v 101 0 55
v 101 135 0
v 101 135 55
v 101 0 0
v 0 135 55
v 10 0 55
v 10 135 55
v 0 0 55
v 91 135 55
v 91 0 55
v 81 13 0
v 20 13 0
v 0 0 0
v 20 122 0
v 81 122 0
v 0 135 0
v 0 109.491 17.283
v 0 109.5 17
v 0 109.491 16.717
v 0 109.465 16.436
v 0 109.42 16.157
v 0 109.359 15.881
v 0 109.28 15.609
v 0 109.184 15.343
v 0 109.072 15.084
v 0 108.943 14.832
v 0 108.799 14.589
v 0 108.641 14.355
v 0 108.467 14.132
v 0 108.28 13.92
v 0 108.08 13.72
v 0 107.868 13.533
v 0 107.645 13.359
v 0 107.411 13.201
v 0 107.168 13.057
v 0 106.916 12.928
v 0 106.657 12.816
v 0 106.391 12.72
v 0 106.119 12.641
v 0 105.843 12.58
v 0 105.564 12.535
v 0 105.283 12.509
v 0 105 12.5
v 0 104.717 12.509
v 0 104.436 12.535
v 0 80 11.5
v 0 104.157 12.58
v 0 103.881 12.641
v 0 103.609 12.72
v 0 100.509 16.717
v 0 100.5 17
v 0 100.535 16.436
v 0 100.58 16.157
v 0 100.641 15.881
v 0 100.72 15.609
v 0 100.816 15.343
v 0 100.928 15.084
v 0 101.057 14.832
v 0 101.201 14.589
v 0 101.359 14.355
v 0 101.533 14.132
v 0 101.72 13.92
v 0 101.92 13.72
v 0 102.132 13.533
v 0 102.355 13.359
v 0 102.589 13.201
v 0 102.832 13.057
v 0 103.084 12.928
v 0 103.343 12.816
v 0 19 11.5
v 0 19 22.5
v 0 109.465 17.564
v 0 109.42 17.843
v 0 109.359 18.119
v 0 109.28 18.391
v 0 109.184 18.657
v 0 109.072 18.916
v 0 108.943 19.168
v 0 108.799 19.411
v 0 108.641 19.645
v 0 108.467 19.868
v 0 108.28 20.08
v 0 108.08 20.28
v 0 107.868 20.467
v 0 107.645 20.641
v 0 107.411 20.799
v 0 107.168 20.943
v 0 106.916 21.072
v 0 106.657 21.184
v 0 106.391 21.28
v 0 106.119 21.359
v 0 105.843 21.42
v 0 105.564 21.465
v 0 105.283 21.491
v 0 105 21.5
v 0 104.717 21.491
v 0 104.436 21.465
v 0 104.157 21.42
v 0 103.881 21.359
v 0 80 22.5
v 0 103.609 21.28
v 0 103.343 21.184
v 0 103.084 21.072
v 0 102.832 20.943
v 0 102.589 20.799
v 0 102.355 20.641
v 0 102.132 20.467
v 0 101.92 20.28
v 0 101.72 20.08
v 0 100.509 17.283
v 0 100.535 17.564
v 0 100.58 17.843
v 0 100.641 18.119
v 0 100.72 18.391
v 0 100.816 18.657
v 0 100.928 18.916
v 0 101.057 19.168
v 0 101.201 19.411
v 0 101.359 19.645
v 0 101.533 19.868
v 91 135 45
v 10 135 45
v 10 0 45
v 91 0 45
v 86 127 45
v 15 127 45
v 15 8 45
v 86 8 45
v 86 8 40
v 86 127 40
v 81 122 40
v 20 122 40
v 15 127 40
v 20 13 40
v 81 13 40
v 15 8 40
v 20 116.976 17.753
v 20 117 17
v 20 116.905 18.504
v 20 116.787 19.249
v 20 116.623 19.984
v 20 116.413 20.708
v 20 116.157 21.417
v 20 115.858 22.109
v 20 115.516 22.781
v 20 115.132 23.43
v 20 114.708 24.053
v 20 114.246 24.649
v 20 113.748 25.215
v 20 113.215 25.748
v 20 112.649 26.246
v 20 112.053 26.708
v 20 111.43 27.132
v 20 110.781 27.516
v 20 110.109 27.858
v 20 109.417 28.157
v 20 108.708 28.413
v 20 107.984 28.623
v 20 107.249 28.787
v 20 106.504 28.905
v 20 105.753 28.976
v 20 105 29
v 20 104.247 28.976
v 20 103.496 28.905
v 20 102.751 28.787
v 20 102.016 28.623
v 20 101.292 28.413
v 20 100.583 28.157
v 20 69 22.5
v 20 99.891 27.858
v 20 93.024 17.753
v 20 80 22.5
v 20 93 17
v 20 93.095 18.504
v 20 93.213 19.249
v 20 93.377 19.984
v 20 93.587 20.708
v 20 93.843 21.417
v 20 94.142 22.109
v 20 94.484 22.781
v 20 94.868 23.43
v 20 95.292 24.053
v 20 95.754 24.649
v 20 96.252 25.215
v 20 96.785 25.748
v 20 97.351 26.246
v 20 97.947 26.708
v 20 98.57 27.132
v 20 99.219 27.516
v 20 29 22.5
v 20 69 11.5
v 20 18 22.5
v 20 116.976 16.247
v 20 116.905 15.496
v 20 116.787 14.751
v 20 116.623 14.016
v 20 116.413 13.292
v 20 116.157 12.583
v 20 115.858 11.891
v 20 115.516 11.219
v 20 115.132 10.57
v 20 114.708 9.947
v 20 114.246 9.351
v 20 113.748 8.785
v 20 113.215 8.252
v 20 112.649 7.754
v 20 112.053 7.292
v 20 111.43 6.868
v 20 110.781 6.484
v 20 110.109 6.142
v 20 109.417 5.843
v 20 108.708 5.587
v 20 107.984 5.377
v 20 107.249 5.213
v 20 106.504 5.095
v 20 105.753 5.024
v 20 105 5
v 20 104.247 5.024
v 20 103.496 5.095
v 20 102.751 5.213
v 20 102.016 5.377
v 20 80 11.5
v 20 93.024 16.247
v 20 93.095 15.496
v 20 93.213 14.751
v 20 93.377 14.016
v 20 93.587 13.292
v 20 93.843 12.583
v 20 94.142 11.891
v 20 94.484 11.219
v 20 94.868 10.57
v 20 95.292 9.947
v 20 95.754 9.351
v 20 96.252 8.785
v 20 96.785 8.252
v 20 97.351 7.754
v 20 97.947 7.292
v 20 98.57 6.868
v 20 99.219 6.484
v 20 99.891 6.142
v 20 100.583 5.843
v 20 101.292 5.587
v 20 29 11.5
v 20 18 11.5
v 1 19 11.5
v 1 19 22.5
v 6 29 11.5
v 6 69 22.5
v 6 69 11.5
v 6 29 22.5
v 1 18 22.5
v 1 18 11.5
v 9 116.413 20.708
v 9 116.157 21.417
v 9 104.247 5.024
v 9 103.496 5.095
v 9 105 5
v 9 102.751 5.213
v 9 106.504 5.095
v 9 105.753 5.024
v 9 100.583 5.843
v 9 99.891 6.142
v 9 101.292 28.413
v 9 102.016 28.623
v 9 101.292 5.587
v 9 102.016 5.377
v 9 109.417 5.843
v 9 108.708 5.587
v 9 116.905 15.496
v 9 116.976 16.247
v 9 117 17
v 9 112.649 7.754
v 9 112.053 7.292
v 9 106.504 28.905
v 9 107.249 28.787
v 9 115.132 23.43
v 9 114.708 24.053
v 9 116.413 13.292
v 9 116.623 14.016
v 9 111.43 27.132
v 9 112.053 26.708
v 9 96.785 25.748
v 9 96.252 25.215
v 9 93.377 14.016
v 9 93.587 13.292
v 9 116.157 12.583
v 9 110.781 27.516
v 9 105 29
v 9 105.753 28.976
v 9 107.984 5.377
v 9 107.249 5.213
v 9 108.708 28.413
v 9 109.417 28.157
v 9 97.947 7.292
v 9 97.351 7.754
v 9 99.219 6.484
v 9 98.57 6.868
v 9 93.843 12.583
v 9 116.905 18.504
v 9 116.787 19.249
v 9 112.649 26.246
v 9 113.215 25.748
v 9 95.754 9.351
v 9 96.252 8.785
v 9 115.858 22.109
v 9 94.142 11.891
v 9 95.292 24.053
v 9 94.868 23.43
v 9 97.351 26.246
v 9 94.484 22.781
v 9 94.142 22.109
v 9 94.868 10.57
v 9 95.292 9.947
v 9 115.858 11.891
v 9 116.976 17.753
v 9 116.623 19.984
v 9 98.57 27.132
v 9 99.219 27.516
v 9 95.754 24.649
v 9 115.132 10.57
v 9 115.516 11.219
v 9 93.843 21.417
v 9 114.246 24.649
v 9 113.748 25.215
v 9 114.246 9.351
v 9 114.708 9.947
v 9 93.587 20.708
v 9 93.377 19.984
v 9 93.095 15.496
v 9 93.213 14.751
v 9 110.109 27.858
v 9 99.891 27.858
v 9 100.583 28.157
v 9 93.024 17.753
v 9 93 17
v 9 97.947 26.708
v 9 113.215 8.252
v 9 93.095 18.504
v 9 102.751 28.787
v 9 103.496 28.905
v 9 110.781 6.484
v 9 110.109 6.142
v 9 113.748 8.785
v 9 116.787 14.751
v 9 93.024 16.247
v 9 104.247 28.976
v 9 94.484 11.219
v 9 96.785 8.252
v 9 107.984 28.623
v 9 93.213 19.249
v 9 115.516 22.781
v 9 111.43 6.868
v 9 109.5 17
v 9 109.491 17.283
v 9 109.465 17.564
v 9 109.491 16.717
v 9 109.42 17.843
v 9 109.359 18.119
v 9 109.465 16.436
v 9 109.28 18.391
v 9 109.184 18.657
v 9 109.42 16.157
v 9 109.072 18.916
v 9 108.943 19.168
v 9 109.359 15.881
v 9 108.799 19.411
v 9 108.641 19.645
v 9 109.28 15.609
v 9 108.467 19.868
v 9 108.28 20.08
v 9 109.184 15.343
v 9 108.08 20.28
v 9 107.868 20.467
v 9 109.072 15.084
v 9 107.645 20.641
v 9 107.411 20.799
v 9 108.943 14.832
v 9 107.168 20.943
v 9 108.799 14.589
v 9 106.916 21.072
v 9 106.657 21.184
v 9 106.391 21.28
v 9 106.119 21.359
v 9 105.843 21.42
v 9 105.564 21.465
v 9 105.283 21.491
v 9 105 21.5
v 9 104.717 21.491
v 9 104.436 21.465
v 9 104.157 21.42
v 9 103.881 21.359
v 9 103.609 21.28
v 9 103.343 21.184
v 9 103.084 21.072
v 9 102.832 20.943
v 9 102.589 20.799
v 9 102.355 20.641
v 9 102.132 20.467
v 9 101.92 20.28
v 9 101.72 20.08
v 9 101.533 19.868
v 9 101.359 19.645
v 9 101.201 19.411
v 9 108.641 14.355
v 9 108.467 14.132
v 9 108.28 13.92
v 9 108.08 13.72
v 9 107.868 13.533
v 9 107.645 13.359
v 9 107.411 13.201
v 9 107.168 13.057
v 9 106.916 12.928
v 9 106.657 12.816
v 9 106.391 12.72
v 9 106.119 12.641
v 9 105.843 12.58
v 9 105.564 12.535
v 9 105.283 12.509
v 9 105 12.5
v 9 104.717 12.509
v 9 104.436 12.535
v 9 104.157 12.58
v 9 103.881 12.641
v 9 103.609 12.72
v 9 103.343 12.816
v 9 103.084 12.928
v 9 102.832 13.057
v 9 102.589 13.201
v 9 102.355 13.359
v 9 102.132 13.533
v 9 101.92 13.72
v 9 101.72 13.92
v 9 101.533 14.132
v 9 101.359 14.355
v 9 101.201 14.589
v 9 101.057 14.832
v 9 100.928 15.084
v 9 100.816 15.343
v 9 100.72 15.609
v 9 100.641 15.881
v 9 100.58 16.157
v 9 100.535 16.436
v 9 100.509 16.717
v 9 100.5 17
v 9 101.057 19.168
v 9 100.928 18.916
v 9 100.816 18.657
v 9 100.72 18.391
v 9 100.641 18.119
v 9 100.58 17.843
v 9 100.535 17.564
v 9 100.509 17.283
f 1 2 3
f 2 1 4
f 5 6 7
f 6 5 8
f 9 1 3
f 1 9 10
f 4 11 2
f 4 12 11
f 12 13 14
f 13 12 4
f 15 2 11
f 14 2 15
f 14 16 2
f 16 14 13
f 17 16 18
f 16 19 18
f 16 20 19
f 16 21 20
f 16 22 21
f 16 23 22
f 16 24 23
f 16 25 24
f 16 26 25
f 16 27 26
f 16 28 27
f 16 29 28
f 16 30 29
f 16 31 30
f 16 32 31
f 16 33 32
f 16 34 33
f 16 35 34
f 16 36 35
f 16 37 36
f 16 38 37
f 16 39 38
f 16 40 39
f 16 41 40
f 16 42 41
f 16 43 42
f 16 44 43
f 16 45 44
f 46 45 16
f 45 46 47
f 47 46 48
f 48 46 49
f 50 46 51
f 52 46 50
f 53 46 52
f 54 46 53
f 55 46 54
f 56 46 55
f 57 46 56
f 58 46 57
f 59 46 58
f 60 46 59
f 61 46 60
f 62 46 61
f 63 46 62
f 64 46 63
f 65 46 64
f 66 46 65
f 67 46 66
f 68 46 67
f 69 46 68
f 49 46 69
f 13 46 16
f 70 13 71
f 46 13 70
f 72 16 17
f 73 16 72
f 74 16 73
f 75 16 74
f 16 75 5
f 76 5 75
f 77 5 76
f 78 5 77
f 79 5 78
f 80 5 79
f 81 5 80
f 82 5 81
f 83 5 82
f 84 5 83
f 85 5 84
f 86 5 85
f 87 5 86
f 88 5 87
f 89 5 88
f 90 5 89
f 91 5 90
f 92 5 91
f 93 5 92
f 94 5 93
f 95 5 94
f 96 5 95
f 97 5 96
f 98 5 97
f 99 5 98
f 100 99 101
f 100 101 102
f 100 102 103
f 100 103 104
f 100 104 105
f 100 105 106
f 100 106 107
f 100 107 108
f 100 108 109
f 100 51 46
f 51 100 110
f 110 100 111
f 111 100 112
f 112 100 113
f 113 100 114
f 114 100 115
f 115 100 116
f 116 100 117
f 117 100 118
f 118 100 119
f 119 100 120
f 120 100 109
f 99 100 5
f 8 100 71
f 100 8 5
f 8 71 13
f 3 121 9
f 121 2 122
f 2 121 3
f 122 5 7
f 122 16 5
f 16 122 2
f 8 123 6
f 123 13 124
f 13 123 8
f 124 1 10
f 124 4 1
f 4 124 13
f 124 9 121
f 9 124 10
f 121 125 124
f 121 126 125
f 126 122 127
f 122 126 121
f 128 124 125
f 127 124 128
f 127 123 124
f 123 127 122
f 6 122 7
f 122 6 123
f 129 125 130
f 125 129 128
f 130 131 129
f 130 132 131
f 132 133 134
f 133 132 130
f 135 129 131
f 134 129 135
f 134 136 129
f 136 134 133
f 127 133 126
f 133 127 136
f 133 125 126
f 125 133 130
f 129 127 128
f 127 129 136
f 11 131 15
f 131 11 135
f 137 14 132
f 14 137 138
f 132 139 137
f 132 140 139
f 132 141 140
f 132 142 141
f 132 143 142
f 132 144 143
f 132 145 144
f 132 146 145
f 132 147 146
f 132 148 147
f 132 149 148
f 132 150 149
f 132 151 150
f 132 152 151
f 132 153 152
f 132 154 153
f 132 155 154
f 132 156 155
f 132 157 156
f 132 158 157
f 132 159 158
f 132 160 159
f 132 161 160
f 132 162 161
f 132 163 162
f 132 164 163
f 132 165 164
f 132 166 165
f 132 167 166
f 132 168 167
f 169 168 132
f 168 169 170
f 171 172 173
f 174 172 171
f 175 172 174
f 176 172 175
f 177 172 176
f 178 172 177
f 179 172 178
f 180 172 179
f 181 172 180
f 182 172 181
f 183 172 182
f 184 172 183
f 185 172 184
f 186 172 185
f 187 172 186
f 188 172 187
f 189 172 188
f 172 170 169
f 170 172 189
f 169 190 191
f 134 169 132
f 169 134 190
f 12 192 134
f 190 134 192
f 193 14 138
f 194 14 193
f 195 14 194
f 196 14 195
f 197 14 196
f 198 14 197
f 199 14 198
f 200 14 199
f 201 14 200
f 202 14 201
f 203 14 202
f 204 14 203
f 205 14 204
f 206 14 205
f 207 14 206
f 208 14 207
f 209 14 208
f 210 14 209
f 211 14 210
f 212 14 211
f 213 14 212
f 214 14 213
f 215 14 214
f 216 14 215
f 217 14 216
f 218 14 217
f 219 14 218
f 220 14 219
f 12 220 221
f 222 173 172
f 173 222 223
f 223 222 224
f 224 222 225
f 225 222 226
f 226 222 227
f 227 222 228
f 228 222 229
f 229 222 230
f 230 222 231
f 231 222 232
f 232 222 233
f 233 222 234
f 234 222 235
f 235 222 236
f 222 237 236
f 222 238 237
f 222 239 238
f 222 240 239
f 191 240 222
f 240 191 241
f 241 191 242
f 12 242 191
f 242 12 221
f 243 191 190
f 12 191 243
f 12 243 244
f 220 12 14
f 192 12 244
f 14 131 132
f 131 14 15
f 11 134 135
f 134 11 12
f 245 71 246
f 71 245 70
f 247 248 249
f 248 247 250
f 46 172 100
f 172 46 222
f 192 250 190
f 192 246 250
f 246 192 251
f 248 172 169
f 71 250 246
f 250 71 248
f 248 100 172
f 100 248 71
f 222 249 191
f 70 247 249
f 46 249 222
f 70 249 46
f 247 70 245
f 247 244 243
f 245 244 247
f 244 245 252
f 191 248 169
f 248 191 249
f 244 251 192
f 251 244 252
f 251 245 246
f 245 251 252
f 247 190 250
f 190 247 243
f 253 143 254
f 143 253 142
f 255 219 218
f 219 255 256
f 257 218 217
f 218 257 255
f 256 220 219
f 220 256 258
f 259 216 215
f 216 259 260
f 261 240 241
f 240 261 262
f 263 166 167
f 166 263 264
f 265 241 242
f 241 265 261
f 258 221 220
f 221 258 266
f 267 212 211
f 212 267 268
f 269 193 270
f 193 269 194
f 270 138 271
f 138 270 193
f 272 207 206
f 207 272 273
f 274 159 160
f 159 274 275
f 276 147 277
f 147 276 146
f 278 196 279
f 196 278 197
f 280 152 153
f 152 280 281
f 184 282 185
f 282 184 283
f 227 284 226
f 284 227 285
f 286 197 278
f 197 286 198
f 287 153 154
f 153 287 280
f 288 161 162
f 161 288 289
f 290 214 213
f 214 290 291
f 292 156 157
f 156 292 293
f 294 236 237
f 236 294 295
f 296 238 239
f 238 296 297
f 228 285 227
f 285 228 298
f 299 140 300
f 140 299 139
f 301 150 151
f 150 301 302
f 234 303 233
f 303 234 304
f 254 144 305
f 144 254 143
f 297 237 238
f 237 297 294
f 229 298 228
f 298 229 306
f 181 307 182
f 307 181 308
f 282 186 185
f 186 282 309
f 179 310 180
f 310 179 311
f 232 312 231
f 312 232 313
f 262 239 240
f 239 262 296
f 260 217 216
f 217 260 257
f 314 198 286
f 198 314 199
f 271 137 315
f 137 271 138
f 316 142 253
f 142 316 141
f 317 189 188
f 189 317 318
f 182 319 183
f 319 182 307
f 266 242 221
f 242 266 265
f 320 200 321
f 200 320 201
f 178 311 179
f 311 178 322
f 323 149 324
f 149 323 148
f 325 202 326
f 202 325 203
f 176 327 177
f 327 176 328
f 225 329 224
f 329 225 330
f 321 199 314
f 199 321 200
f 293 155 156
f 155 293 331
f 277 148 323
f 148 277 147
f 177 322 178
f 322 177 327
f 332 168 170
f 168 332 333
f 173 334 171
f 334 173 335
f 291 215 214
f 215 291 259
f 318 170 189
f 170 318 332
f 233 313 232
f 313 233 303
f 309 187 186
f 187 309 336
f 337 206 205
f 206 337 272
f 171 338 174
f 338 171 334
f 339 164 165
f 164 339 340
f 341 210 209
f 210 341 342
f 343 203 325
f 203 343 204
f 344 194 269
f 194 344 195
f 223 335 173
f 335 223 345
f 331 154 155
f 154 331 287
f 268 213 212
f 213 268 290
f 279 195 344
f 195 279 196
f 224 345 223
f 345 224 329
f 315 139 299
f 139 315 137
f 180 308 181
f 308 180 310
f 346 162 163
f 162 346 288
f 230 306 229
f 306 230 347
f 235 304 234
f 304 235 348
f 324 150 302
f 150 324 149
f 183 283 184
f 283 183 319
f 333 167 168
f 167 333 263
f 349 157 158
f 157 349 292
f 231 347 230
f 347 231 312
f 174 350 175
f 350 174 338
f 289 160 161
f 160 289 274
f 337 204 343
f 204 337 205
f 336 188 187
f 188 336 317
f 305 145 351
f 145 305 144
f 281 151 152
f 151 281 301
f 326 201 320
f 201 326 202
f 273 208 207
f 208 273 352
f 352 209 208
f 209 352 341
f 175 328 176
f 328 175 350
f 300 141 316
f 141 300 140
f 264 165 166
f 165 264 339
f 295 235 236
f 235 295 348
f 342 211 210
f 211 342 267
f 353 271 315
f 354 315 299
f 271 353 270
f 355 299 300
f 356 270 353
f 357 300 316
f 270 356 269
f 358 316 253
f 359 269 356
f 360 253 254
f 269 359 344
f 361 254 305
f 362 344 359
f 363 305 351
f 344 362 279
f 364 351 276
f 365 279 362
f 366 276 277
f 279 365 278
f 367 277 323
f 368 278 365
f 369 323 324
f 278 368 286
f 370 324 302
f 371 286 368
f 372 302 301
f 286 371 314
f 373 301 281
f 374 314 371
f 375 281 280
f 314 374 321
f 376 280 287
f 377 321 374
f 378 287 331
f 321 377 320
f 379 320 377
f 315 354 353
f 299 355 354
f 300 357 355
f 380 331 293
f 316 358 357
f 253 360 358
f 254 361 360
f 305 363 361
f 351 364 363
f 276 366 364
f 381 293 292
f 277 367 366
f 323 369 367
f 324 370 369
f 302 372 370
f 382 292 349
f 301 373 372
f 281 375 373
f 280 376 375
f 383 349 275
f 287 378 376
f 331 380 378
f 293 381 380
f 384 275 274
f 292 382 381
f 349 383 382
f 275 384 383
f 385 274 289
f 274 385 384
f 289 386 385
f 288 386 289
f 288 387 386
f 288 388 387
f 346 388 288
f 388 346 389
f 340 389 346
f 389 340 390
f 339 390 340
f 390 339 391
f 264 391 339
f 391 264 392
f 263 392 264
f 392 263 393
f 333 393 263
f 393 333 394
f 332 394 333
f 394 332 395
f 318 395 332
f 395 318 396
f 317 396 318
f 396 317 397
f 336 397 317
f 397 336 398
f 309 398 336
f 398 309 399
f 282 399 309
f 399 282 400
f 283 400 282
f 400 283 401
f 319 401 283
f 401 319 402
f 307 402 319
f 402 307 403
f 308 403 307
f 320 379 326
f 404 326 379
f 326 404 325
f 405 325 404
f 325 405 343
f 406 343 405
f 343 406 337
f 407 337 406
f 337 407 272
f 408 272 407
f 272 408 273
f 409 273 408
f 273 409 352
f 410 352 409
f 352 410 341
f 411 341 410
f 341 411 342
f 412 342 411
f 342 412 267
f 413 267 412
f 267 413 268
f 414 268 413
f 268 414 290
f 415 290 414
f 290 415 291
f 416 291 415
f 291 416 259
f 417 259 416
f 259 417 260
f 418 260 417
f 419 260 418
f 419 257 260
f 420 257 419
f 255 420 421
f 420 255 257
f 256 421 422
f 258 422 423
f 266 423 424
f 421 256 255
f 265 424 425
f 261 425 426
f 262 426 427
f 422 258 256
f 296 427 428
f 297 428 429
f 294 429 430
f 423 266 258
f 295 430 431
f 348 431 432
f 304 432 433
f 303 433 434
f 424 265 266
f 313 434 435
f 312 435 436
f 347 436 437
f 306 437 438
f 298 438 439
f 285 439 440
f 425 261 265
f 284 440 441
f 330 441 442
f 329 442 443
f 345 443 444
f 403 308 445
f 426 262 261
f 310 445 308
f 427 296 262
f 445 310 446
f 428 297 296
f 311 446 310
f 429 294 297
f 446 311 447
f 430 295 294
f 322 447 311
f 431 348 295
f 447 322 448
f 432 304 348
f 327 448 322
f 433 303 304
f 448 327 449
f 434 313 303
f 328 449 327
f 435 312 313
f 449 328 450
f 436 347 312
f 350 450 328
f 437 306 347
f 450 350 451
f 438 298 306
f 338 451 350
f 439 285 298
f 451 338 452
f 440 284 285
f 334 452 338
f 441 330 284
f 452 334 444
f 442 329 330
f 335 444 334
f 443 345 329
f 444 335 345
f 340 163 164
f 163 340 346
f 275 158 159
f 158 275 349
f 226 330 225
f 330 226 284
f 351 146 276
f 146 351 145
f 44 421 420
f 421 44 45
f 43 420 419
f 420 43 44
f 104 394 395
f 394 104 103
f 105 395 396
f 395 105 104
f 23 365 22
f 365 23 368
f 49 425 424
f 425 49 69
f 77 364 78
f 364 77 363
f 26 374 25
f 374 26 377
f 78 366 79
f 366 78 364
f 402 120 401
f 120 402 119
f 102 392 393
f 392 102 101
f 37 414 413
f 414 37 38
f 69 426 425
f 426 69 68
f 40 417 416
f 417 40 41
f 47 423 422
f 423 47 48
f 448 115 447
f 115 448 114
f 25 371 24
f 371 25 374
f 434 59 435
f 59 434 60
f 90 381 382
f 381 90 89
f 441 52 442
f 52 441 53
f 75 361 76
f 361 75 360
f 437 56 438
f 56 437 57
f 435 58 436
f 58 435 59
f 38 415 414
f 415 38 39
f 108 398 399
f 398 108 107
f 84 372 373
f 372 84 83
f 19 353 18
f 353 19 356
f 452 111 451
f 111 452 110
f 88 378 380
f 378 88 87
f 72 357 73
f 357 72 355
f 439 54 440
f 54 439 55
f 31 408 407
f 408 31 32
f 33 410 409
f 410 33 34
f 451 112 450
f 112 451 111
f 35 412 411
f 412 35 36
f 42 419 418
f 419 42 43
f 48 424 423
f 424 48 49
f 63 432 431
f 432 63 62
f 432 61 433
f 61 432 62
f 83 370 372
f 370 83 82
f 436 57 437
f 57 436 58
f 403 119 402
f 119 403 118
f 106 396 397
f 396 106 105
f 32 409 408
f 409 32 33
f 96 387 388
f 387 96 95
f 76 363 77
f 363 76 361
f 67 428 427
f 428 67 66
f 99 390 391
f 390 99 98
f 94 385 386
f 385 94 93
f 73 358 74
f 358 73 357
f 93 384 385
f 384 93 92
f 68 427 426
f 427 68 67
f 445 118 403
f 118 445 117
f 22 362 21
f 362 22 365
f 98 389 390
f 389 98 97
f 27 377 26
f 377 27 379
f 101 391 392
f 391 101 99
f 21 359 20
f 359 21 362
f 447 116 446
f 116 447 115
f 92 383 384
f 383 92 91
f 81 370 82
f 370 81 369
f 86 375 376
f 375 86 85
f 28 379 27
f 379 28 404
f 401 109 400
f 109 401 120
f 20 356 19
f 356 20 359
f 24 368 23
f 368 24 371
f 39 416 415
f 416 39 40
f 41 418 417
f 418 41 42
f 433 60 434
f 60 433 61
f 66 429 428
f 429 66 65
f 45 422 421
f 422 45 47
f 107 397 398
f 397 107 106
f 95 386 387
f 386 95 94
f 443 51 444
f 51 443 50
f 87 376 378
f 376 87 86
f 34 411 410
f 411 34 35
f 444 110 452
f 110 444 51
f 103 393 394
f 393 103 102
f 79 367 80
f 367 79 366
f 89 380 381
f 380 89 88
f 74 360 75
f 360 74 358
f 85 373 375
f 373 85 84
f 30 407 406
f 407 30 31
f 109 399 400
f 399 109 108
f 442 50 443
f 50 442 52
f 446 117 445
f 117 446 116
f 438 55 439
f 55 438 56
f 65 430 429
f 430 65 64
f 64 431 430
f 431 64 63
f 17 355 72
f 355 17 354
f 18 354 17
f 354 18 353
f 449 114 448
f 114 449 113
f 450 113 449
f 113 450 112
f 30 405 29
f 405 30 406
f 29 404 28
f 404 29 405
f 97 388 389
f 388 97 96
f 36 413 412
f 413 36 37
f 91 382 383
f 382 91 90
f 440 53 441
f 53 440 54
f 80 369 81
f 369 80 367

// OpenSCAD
$fn = 100;

union() {
	difference() {
		union() {
			difference() {
				cube(size = [101, 135, 55]);
				translate(v = [10, -5, 45]) {
					cube(size = [81, 145, 55]);
				}
				translate(v = [15, 8, 40]) {
					cube(size = [71, 119, 55]);
				}
				translate(v = [20, 13, -1]) {
					cube(size = [61, 109, 55]);
				}
			}
			%translate(v = [16, 9, 40.01]) {
				cube(size = [69, 117, 2]);
			}
		}
		translate(v = [29, 105, 17.0]) {
			rotate(a = [0, 90, 180]) {
				union() {
					cylinder(h = 20, r1 = 12.0, r2 = 12.0);
					translate(v = [0, 0, 19]) {
						cylinder(h = 21, r1 = 4.5, r2 = 4.5);
					}
					#translate(v = [0, 0, 30]) {
						cylinder(h = 16, r1 = 7.0, r2 = 7.0);
					}
				}
			}
		}
		translate(v = [7, 80, 11.5]) {
			rotate(a = [-90, 180, 90]) {
				union() {
					cube(size = [61.0, 11.0, 8]);
					translate(v = [0, 0, -25]) {
						cube(size = [11.0, 11.0, 30]);
					}
					translate(v = [51.0, 0, -25]) {
						cube(size = [11.0, 11.0, 30]);
					}
					#translate(v = [0.5, 0.5, 0.5]) {
						cube(size = [60, 10, 8.5]);
					}
					#translate(v = [20, 5.0, 7]) {
						cube(size = [5, 1, 15]);
					}
				}
			}
		}
	}
	%translate(v = [10.5, -27.5, 45.01]) {
		cube(size = [80, 190, 190]);
	}
}
